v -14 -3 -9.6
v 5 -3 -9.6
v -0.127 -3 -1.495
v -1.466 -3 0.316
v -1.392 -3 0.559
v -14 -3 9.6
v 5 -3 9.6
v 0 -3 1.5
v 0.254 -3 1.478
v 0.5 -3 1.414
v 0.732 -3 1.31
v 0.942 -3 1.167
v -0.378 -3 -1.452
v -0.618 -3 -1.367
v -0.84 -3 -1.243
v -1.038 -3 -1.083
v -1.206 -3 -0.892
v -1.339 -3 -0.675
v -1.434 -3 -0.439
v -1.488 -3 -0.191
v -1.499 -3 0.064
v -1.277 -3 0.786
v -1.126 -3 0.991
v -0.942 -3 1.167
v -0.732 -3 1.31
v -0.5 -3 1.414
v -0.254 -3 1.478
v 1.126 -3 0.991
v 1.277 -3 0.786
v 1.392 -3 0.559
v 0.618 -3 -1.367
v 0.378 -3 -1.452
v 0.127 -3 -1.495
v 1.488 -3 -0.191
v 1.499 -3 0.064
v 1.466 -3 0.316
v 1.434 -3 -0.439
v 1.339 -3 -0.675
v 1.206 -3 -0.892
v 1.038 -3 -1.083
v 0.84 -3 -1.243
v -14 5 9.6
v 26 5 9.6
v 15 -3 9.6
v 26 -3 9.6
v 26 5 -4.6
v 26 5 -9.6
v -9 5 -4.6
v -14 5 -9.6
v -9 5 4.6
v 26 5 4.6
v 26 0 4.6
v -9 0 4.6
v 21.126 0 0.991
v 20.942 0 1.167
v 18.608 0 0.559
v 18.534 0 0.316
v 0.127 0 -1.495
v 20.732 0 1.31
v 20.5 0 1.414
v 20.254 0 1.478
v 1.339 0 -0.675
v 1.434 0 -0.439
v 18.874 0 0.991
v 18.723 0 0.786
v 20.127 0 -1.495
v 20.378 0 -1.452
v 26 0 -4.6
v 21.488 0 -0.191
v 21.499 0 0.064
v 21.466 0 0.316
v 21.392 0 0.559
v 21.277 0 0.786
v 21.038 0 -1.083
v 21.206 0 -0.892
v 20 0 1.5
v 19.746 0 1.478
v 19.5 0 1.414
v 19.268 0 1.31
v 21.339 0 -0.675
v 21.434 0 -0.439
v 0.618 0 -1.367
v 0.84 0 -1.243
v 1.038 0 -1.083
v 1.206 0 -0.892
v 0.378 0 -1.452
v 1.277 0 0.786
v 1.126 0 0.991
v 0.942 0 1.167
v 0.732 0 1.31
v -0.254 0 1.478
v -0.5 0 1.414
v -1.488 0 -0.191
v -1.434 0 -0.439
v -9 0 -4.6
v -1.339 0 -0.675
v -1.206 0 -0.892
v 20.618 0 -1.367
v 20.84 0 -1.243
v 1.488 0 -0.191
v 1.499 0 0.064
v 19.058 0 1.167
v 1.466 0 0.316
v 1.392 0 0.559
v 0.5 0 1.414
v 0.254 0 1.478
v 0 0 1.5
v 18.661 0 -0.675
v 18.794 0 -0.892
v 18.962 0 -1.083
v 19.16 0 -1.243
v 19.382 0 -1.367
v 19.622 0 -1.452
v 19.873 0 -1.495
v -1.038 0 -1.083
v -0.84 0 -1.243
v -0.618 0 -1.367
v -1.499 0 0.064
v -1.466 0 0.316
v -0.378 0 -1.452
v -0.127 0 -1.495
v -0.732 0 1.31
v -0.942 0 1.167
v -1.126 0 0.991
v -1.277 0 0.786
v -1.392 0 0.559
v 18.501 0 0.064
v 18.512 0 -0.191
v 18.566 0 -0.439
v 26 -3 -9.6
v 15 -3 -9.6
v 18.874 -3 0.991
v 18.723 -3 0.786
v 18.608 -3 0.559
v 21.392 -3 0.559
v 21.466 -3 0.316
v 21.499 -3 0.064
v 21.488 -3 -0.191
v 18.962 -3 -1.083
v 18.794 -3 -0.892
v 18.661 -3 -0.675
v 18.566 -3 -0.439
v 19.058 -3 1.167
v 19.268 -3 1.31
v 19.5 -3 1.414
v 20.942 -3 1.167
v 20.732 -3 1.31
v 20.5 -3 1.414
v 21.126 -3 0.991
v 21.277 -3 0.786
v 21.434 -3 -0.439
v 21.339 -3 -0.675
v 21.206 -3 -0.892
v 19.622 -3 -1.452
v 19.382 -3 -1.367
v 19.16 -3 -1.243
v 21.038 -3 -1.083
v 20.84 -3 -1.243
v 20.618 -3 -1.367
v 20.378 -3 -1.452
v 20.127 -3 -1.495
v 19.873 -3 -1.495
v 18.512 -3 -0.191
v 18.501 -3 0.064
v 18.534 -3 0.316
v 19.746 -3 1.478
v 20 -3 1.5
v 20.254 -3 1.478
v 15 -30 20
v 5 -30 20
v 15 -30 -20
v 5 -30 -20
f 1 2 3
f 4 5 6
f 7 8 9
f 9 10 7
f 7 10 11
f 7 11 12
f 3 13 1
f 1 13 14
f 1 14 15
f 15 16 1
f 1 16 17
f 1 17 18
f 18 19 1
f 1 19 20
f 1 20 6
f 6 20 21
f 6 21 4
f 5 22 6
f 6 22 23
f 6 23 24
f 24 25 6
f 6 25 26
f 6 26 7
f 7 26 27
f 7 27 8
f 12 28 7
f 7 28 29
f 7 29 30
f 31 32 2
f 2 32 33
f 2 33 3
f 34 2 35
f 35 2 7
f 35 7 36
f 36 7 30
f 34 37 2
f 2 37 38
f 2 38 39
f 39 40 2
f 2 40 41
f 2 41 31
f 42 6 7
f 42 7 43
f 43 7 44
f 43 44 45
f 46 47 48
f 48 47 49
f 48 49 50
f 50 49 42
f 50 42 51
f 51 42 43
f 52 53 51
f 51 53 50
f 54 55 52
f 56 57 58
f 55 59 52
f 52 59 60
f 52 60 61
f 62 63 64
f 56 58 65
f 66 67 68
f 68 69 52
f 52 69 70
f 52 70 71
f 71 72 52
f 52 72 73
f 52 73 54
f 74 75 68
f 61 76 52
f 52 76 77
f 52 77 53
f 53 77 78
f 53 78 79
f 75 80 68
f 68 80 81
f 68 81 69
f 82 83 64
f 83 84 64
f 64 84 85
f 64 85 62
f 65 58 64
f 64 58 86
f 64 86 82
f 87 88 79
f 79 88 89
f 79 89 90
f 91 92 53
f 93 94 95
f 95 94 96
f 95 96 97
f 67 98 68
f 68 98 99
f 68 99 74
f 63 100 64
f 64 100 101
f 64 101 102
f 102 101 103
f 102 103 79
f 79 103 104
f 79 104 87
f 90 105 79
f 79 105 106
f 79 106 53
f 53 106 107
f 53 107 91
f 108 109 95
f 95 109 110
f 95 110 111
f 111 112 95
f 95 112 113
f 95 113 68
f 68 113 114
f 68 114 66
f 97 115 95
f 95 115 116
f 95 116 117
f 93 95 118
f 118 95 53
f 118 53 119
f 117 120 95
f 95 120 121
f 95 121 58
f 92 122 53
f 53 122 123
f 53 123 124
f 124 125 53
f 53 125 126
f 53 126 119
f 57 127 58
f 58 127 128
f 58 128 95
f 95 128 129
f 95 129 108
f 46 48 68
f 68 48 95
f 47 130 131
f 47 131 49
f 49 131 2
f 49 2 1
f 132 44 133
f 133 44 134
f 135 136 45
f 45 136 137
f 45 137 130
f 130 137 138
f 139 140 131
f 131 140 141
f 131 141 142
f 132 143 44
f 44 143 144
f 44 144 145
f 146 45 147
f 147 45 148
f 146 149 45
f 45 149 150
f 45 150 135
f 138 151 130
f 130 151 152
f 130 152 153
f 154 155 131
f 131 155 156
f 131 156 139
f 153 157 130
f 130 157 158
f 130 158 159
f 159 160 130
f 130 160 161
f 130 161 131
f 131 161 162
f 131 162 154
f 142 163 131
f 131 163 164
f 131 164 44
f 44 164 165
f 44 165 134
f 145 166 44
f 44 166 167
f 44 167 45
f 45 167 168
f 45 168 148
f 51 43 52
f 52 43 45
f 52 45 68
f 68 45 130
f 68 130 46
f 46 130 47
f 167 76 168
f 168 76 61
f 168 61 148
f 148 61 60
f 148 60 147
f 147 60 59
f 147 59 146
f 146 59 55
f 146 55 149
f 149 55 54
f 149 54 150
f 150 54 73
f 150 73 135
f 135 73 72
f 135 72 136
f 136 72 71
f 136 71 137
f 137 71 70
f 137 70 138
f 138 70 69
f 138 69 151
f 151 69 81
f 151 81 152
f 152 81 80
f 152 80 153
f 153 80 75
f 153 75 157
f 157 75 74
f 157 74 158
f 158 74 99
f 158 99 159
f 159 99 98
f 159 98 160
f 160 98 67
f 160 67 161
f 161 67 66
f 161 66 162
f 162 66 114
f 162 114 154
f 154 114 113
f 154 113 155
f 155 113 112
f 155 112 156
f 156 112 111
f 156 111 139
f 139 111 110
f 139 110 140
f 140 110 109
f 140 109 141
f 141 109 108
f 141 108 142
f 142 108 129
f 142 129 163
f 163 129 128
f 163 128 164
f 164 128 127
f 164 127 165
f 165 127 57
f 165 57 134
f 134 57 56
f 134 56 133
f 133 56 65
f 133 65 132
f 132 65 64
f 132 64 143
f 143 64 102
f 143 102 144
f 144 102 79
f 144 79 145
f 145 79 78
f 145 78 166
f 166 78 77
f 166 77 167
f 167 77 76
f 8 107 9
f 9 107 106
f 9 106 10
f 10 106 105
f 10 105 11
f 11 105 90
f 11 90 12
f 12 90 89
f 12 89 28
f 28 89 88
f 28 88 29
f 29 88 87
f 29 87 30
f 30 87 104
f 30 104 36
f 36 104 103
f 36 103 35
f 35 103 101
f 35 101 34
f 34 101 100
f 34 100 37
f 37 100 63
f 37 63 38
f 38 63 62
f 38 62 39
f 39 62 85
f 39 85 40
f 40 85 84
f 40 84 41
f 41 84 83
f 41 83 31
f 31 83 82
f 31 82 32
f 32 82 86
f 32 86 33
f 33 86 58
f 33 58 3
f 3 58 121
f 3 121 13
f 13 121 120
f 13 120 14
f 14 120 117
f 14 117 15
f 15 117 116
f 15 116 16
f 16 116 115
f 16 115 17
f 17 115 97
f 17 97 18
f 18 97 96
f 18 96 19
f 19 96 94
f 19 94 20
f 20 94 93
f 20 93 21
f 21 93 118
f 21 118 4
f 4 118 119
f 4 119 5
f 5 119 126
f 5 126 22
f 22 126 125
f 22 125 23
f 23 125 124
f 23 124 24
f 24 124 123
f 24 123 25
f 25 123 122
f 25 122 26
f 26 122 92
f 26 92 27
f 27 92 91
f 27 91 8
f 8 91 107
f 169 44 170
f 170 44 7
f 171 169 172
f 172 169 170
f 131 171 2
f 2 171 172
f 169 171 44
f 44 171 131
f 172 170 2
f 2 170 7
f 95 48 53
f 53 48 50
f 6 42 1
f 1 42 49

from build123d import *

# Parameters (mm, degrees)
BOSS_EXTRUDE1_DEPTH      = 26
BOSS_EXTRUDE1_DEPTH_BACK = 9
CUT_EXTRUDE1_DEPTH       = 29.163096421
CUT_EXTRUDE1_DEPTH_BACK  = 29.163096421
SKETCH4_R                = 1.5
BOSS_EXTRUDE2_DEPTH      = 5
SKETCH7_W                = 19.2
SKETCH7_H                = 8
BOSS_EXTRUDE3_DEPTH      = 5


with BuildPart() as part:
    # Sketch3 → Boss-Extrude1 (new, two sides: drawn at the far end of the back side and taken through both)
    with BuildSketch(Plane(origin=(0, 0, 0), x_dir=(0, 0, -1), z_dir=(1, 0, 0)).offset(-BOSS_EXTRUDE1_DEPTH_BACK)):
        Polygon((-4.6, 0), (-4.6, 5), (-9.6, 5), (-9.6, -3), (9.6, -3), (9.6, 5), (4.6, 5), (4.6, 0), align=None)
    extrude(amount=BOSS_EXTRUDE1_DEPTH + BOSS_EXTRUDE1_DEPTH_BACK)

    # Sketch4 → Cut-Extrude1 (cut, two sides: drawn at the far end of the back side and taken through both)
    with BuildSketch(Plane(origin=(0, 0, 0), x_dir=(1, 0, 0), z_dir=(0, 1, 0)).offset(-CUT_EXTRUDE1_DEPTH_BACK)):
        with Locations(Location((0, 0, 0), (0, 0, 270))):
            Circle(SKETCH4_R)
        with Locations(Location((20, 0, 0), (0, 0, 270))):
            Circle(SKETCH4_R)
    extrude(amount=CUT_EXTRUDE1_DEPTH + CUT_EXTRUDE1_DEPTH_BACK, mode=Mode.SUBTRACT)

    # Sketch6 → Boss-Extrude2 (add, symmetric)
    with BuildSketch(Plane(origin=(10, 0, 0), x_dir=(0, 0, -1), z_dir=(1, 0, 0))):
        Polygon((-20, -30), (-9.6, -3), (9.6, -3), (20, -30), align=None)
    extrude(amount=BOSS_EXTRUDE2_DEPTH, both=True)

    # Sketch7 → Boss-Extrude3 (add)
    with BuildSketch(Plane.ZY.offset(9)):
        with Locations((0, 1)):
            Rectangle(SKETCH7_W, SKETCH7_H)
    extrude(amount=BOSS_EXTRUDE3_DEPTH)


solid = part.part
